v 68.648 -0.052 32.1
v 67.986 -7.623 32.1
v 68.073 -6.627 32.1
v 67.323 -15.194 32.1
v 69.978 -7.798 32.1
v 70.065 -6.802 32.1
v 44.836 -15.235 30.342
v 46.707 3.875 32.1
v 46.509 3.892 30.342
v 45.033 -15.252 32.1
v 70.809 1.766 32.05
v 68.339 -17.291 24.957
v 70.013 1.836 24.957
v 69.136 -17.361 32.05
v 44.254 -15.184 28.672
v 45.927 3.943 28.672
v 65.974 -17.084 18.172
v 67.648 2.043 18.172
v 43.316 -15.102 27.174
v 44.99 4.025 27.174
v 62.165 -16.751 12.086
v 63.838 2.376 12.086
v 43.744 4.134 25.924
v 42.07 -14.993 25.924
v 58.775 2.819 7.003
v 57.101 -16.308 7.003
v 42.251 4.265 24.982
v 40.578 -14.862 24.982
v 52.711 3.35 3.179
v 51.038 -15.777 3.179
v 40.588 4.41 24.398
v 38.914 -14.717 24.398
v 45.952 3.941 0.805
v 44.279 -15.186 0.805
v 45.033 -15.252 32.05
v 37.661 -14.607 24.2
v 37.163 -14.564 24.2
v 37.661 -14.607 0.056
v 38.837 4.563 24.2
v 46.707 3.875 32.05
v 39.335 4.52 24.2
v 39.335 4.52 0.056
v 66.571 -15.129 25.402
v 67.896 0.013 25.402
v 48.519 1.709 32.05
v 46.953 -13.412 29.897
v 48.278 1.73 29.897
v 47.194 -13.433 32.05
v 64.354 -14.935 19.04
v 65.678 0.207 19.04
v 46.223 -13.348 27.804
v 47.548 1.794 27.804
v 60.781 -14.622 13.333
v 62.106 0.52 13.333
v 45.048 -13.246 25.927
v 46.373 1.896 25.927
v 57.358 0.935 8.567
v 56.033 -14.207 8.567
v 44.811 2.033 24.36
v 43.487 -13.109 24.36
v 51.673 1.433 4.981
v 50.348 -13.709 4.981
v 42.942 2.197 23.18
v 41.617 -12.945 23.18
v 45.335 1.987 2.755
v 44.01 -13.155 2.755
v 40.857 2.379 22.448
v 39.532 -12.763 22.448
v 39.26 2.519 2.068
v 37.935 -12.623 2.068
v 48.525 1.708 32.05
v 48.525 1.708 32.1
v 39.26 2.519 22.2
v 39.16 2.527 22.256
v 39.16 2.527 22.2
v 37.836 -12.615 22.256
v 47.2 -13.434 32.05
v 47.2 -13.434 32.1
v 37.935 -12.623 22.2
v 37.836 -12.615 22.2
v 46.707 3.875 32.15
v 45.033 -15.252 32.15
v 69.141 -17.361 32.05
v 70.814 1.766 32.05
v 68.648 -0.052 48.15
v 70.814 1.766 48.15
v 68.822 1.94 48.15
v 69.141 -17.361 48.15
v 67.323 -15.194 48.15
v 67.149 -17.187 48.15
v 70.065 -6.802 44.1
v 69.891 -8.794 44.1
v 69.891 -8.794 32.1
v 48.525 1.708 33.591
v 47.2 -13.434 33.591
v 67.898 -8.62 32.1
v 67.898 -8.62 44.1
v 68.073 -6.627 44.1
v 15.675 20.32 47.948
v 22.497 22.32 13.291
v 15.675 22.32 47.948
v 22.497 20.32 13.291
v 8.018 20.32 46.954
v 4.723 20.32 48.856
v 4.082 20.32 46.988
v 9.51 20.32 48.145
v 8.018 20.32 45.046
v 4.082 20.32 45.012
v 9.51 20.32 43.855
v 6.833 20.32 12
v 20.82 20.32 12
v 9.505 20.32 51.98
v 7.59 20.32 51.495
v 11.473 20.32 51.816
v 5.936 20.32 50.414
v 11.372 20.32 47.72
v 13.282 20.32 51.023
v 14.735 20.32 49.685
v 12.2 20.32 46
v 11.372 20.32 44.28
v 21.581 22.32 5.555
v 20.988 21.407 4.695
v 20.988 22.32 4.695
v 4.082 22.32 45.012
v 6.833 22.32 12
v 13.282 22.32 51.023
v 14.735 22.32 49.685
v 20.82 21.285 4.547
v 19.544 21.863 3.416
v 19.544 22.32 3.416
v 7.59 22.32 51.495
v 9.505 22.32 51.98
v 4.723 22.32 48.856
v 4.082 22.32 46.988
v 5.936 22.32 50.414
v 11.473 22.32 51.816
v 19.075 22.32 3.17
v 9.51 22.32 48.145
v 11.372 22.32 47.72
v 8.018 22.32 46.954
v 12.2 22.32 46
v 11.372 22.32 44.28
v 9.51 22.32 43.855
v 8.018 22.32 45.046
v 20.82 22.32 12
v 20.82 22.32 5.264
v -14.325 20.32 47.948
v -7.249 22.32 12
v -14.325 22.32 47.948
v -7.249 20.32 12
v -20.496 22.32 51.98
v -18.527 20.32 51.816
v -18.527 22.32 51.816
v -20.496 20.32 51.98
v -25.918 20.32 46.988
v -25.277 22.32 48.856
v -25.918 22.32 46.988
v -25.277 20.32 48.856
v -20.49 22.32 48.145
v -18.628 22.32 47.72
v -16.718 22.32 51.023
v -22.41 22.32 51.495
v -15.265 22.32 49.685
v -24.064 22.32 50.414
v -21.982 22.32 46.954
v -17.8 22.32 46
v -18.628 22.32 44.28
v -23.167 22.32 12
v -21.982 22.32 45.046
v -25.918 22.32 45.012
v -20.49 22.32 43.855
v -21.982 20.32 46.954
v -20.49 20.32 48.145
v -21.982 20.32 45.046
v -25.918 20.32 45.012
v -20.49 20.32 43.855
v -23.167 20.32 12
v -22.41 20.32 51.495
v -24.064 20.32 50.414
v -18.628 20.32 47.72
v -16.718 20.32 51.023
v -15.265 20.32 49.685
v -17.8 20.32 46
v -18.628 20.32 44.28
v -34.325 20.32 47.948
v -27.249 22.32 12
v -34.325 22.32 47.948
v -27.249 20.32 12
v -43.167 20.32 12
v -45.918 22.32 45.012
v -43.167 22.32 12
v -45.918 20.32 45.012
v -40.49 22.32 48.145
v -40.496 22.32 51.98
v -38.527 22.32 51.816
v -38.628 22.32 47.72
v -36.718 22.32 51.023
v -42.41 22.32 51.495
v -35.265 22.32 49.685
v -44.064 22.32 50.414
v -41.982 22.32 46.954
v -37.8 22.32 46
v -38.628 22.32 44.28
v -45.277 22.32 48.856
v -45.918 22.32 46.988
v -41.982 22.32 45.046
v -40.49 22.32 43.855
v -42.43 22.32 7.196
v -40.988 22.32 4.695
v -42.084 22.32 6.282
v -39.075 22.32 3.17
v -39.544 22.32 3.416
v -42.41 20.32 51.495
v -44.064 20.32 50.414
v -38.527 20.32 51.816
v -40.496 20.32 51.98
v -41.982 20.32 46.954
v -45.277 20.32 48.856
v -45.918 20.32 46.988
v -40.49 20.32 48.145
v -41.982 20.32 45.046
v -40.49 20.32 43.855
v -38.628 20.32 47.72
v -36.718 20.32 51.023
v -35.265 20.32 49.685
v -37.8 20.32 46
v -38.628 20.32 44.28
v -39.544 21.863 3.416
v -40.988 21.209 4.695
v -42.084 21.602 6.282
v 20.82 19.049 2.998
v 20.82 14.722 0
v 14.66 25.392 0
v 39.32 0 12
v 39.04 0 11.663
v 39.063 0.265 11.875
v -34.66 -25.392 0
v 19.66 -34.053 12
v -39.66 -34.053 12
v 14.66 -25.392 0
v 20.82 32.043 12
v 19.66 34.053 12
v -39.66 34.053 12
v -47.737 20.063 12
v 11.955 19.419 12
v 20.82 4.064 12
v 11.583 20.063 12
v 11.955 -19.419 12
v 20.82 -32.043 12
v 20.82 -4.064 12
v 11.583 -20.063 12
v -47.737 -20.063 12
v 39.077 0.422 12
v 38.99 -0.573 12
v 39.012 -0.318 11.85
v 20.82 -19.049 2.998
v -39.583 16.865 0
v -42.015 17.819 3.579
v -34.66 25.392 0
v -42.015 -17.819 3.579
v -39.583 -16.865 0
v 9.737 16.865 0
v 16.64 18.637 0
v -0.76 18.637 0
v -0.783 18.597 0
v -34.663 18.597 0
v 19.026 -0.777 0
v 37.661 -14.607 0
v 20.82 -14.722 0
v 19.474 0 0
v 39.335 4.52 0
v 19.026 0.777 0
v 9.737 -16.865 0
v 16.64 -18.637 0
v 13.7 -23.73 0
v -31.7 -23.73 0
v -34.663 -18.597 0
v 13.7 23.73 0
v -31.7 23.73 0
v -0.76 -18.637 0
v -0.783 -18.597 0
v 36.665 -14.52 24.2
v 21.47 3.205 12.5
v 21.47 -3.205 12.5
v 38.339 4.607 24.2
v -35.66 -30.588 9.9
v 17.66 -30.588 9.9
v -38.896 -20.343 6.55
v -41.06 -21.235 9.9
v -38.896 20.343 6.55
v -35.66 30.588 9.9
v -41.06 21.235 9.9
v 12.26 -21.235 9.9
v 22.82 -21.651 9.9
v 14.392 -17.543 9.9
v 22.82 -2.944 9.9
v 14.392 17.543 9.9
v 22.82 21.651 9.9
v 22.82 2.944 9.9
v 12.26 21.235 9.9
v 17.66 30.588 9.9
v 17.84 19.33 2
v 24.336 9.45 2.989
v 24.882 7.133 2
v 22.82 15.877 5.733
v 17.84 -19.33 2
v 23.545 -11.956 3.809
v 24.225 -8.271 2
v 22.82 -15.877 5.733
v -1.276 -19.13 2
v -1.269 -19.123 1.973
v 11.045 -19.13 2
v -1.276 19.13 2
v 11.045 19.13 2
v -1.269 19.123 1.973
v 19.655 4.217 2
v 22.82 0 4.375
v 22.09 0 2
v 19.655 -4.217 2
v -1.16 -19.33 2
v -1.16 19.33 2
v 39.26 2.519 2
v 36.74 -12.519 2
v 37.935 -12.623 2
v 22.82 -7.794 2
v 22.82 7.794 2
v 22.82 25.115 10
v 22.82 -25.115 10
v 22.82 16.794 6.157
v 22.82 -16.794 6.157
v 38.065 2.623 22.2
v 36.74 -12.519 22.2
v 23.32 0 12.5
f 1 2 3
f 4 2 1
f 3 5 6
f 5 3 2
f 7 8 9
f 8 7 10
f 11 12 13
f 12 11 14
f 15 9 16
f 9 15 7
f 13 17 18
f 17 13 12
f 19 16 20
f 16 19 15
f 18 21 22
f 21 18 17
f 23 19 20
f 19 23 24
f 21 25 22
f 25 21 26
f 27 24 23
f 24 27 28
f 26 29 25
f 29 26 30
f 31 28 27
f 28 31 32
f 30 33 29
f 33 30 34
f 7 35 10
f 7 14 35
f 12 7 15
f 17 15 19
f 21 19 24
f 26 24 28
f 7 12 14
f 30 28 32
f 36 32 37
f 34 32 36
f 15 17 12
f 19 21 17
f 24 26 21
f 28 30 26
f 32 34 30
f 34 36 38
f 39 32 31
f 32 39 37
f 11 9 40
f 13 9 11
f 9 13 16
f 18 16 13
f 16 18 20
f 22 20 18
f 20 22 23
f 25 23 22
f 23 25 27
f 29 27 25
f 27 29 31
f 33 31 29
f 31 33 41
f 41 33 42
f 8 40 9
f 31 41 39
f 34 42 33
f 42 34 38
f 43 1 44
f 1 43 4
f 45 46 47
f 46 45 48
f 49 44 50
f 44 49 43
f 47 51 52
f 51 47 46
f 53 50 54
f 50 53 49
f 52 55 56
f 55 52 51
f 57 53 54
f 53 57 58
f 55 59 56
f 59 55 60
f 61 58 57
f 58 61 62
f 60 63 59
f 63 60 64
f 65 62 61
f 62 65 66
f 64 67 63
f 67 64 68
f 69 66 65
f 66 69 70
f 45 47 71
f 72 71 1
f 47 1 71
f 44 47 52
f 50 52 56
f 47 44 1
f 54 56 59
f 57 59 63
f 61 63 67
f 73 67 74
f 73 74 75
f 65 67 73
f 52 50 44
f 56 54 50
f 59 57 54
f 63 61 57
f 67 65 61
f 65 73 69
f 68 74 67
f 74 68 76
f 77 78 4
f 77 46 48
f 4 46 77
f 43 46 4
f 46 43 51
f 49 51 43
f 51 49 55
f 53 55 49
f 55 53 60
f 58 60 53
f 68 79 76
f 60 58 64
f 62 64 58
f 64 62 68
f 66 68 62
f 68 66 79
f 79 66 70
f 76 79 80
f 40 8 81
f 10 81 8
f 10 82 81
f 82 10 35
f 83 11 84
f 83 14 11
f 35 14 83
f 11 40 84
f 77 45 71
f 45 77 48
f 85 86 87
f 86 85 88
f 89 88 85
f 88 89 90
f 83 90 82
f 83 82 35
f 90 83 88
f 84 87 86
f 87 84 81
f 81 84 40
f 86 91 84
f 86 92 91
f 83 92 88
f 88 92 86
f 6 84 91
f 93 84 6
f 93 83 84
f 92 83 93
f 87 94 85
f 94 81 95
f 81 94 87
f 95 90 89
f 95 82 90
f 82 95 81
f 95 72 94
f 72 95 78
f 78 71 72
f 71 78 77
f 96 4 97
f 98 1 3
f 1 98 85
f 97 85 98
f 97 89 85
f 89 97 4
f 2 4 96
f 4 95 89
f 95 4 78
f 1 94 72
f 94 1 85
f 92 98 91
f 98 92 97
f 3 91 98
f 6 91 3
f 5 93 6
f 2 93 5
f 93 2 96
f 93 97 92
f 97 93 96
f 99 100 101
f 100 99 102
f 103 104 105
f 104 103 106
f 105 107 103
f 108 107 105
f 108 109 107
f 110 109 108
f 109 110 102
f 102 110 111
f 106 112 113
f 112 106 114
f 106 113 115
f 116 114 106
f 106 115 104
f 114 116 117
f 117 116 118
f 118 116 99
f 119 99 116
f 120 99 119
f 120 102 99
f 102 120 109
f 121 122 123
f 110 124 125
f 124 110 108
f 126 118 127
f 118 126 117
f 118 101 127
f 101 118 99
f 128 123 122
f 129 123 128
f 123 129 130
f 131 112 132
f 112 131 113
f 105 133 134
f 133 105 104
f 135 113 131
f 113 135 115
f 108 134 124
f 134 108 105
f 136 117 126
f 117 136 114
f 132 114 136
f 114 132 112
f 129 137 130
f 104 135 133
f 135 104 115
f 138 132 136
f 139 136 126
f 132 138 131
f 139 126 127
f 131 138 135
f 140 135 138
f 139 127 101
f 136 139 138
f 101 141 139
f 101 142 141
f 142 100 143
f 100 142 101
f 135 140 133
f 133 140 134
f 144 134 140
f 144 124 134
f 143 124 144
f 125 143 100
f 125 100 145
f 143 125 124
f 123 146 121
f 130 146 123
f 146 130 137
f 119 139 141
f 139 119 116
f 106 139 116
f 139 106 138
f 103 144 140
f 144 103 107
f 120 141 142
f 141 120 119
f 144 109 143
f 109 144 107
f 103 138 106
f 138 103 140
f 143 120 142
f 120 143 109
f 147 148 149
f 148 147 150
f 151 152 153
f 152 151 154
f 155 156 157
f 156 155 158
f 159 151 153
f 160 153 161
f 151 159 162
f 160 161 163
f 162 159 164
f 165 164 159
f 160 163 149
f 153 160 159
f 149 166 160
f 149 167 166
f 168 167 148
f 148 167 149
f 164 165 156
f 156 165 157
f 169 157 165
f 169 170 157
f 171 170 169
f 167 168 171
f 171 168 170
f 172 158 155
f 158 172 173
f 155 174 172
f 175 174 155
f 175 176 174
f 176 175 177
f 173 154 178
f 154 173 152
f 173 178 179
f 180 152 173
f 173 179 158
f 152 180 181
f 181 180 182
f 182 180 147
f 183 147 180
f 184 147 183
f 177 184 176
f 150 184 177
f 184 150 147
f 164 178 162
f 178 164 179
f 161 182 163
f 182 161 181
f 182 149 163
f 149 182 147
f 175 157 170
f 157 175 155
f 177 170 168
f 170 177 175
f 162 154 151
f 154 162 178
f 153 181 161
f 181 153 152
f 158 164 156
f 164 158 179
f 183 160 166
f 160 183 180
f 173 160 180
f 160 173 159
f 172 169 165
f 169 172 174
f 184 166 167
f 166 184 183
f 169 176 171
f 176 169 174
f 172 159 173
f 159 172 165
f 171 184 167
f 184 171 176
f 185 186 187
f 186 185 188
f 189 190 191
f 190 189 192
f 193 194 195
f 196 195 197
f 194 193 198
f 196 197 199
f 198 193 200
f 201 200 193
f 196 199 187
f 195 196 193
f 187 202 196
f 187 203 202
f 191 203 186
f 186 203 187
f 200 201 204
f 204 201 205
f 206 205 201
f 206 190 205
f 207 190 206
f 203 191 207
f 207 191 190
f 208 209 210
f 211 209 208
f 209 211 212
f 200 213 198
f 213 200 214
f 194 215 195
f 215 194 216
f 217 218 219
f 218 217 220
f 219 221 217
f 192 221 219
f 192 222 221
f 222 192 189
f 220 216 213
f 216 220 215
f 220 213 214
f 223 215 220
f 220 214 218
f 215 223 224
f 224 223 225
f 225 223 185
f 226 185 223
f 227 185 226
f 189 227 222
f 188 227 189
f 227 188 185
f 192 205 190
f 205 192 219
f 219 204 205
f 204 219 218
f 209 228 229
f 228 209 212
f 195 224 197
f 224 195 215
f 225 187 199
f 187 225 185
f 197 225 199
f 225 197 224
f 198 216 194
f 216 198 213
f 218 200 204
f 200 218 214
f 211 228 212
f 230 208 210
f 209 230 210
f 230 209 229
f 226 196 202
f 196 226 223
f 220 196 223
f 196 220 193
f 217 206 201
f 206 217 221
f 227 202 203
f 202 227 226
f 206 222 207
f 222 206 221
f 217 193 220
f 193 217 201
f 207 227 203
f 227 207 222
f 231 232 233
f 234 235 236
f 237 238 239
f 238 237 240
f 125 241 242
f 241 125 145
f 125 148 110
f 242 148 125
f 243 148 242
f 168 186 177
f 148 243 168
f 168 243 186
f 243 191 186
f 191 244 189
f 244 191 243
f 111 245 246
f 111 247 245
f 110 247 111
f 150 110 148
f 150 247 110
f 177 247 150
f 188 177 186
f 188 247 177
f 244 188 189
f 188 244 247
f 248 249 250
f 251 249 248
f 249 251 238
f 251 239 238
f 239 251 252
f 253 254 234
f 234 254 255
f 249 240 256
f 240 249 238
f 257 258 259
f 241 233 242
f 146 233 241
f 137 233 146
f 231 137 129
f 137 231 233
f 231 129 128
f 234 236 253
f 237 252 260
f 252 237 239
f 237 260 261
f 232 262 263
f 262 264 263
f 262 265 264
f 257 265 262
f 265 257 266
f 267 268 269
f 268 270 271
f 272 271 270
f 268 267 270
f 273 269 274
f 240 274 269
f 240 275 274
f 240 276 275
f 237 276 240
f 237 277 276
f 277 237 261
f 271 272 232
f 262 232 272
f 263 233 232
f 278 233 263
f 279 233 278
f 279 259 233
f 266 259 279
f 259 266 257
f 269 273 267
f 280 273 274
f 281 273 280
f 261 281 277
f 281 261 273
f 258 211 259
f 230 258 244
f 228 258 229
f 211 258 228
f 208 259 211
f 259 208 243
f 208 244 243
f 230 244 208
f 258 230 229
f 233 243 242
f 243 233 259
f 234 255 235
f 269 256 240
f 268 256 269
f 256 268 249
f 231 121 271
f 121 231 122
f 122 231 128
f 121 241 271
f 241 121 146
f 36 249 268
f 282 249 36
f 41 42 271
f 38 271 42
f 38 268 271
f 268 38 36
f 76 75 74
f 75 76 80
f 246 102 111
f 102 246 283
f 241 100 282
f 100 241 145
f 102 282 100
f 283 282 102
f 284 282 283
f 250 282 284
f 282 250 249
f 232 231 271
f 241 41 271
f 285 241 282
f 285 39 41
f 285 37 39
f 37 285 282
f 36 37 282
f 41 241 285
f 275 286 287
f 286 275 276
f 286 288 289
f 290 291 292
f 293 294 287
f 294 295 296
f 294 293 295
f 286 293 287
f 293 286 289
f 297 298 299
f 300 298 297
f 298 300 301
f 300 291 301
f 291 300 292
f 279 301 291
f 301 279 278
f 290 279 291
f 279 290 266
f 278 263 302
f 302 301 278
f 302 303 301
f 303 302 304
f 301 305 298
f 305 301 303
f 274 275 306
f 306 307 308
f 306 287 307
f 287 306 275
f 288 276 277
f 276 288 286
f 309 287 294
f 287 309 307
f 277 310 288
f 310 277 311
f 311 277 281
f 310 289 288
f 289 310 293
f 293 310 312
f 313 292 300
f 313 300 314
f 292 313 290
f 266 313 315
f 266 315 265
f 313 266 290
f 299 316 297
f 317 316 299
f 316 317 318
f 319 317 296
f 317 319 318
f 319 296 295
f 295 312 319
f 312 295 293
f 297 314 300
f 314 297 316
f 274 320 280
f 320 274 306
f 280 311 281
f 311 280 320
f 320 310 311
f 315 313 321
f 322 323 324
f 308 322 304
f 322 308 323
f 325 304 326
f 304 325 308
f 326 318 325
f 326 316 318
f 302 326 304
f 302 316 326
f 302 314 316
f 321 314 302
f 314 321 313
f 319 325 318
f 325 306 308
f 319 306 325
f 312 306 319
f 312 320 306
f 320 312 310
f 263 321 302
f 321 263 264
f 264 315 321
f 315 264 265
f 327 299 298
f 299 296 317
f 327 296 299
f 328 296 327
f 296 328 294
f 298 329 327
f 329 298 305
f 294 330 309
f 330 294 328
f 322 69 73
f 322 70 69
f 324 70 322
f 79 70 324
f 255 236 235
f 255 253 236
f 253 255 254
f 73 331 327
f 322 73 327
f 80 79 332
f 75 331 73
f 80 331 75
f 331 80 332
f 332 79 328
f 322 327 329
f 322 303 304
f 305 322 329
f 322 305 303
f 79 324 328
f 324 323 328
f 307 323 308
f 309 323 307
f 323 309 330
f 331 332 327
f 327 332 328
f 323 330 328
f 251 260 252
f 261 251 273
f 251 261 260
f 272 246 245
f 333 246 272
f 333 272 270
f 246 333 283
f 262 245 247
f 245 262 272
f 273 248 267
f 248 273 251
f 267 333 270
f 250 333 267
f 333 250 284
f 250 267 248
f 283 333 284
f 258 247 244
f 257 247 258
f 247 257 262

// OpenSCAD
hot_rad = 30/2/cos(30);
hotend_x=25;
fan_x = 15+5;

hotend_y=-5;

thickness = 10;
wall=2;
slop=.2;

fan_hole = (40-wall-wall)/2;
mount_drop = 10;
fan_z = fan_hole+wall;

//fan_mount();
bowden_fan();

%cylinder(r=hot_rad, h=20, center=true);
%translate([-23,0,0]) cylinder(r=hot_rad, h=20, center=true);

m3_cap_rad = 4;
m3_rad = 2;
m3_nut_rad = 6.01/2+.1;

facets = 6;

module fan_mount(){
    difference(){
        union(){
            //core
            cylinder(r1=hot_rad+thickness+wall, r2=hot_rad+thickness*2+wall, h=thickness+wall, $fn=facets);
            
            hull(){
                intersection(){
                    difference(){
                        cylinder(r1=hot_rad+thickness+wall, r2=hot_rad+thickness*2+wall, h=thickness+wall, $fn=facets);
                        translate([0,0,-.5]) cylinder(r1=hot_rad+wall, r2=hot_rad+wall+wall, h=thickness+wall+1, $fn=facets);
                    }
                    translate([50+hot_rad-6.7,50,50]) cube([100,100,100], center=true);
                }
                translate([hotend_x+fan_x-5,hotend_y,fan_z]) rotate([0,90,0]) cylinder(r=fan_hole+wall, h=5);
            }
            
            hull(){
                intersection(){
                    difference(){
                        cylinder(r1=hot_rad+thickness+wall, r2=hot_rad+thickness*2+wall, h=thickness+wall, $fn=facets);
                        translate([0,0,-.5]) cylinder(r1=hot_rad+wall, r2=hot_rad+wall+wall, h=thickness+wall+1, $fn=facets);
                    }
                    translate([50+hot_rad-6.7,-50,50]) cube([100,100,100], center=true);
                }
                translate([hotend_x+fan_x-5,hotend_y,fan_z]) rotate([0,90,0]) cylinder(r=fan_hole+wall, h=5);
            }
            
            //fan mount
            translate([hotend_x+fan_x,hotend_y,fan_z]) rotate([0,90,0]){
                hull() for(i=[0:90:359]) rotate([0,0,i]) {
                    #translate([20-wall,20-wall,-wall]) cylinder(r=wall,h=wall*2, $fn=16);
                }    
            }
            
            //mounting lugs above fan
            translate([hotend_x+fan_x,hotend_y,fan_z]) rotate([0,90,0]){
                for(i=[-16, 16]) difference(){
                    hull(){
                        translate([-16-mount_drop,i,-fan_x+3]) cylinder(r=m3_rad+wall, h=wall*2, $fn=16);
                        translate([0,i,-fan_x+3]) cylinder(r=m3_cap_rad*2, h=wall);
                    }
                    translate([-16-mount_drop,i,-fan_x+3-.1]) cylinder(r=m3_rad, h=wall*2+1, $fn=16);
                }
            }
        }
        
        //center cutout
        translate([0,0,-.5]) cylinder(r1=hot_rad+wall, r2=hot_rad+wall+wall, h=thickness+wall+1, $fn=facets);
                
        //front cutout
        translate([-(hot_rad+thickness*2+wall),0,0]) cylinder(r=hot_rad+thickness*2+wall, h=thickness+wall*10, center=true, $fn=facets);
        
        //fan holes
        translate([hotend_x+fan_x,hotend_y,fan_z]) rotate([0,90,0]){
            for(i=[-16, 16]) for(j=[-16, 16]) {
                #translate([j,i,-.1]) cylinder(r=m3_rad, h=wall+.2, $fn=16);
                translate([j,i,-wall*2-.1]) cylinder(r2=m3_nut_rad, r1=m3_nut_rad+.25, h=wall*2+.2, $fn=6);
            }
        }
        
        //air path
        translate([0,0,-.1]) difference(){
            union(){
                translate([-wall,0,0]) cylinder(r1=hot_rad+thickness, r2=hot_rad+thickness*2-wall, h=thickness, $fn=facets);
                
                hull(){
                    intersection(){
                        difference(){
                            translate([-wall,0,0]) cylinder(r1=hot_rad+thickness, r2=hot_rad+thickness*2-wall, h=thickness, $fn=facets);
                            translate([0,0,-.5]) cylinder(r1=hot_rad+wall*2, r2=hot_rad+wall*3, h=thickness+wall+1, $fn=facets);
                        }
                        translate([50+hot_rad-6.7,50,50]) cube([100,100,100], center=true);
                    }
                    translate([hotend_x+fan_x-5,hotend_y,fan_z]) rotate([0,90,0]) cylinder(r=fan_hole, h=.3);
                }
                
                hull(){
                    intersection(){
                        difference(){
                            translate([-wall,0,0]) cylinder(r1=hot_rad+thickness, r2=hot_rad+thickness*2-wall, h=thickness, $fn=facets);
                            translate([0,0,-.5]) cylinder(r1=hot_rad+wall+wall, r2=hot_rad+wall+wall+wall, h=thickness+wall+1, $fn=facets);
                        }
                        translate([50+hot_rad-6.7,-50,50]) cube([100,100,100], center=true);
                    }
                    translate([hotend_x+fan_x-5,hotend_y,fan_z]) rotate([0,90,0]) cylinder(r=fan_hole, h=.3);
                }
                
                translate([hotend_x+fan_x-5,hotend_y,fan_z]) rotate([0,90,0]) cylinder(r=fan_hole, h=wall+1+5);
            }
            cylinder(r1=hot_rad+wall+wall, r2=hot_rad+wall+wall+wall, h=thickness+wall, $fn=facets);
            translate([-(hot_rad+thickness*2),0,0]) cylinder(r=hot_rad+thickness*2+wall, h=thickness+wall*10, center=true, $fn=facets);
            translate([0,-5+hotend_y/2,0])cube([100,10,wall]);
        }
    }
}

duct_angle=-5;
duct_jut = -5;

module bowden_fan(){
    duct_w = 15+slop;
    duct_h = 20+slop;
    duct_offset=38;
    
    mount_height = 46;
    
    offset = -20;
    difference(){
        union(){
            //core
            hull(){
                cylinder(r1=hot_rad+thickness+wall, r2=hot_rad+thickness*2+wall, h=thickness+wall, $fn=facets);
                translate([offset,0,0]) cylinder(r1=hot_rad+thickness+wall, r2=hot_rad+thickness*2+wall, h=thickness+wall, $fn=facets);
            }
            
            //connection to duct
            hull(){
                intersection(){
                    cylinder(r1=hot_rad+thickness+wall, r2=hot_rad+thickness*2+wall, h=thickness+wall, $fn=facets);
                    translate([hot_rad+wall*2,0,0]) cube([1,200,200], center=true);
                }
                translate([duct_offset,duct_jut,duct_h/2+wall]) rotate([0,0,duct_angle]) cube([1,duct_w+wall*2, duct_h+wall*2], center=true);
            }
            
            //the duct connector
            translate([duct_offset,duct_jut,0]) rotate([0,0,duct_angle]) duct();
            
            //mounting lugs
           for(i=[10,-20,-40]) difference(){
                translate([i,hot_rad+wall*2,0]) hull(){
                    translate([5,0,thickness]) rotate([90,0,0]) cylinder(r=m3_cap_rad+wall*2, h=wall, center=true);
                    translate([0,0,mount_height]) rotate([90,0,0]) cylinder(r=m3_cap_rad+wall, h=wall, center=true);
                }
                
                //mounting holes up top
                translate([i,hot_rad+wall*2,mount_height]) rotate([90,0,0]) cylinder(r=m3_rad+slop, h=20, center=true);
            }
        }
        
        //connection to duct airflow
        hull(){
            intersection(){
                translate([0,0,wall]) cylinder(r1=hot_rad+thickness, r2=hot_rad+thickness*2, h=thickness-wall, $fn=facets);
                translate([hot_rad+wall*3,0,0]) cube([1,200,200], center=true);
            }
            translate([duct_offset,duct_jut,duct_h/2+wall]) rotate([0,0,duct_angle]) cube([1.2,duct_w, duct_h], center=true);
        }
        
        //center cutout
        translate([0,0,-.5]) hull(){
            cylinder(r1=hot_rad+wall, r2=hot_rad+wall*3, h=thickness+wall+1, $fn=facets);
            translate([2*offset,0,0]) cylinder(r1=hot_rad+wall, r2=hot_rad+wall*3, h=thickness+wall+1, $fn=facets);
        }
        
        //air path
        difference(){
            //core
            translate([0,0,-.1]) hull(){
                cylinder(r1=hot_rad+thickness, r2=hot_rad+thickness*2-wall, h=thickness, $fn=facets);
                translate([offset+wall,0,0]) cylinder(r1=hot_rad+thickness, r2=hot_rad+thickness*2-wall, h=thickness, $fn=facets);
            }
            
            //keep the center walls in place
            translate([0,0,-.5]) hull(){
                cylinder(r1=hot_rad+wall*2, r2=hot_rad+wall*4, h=thickness+wall+1, $fn=facets);
                translate([2*offset,0,0]) cylinder(r1=hot_rad+wall*2, r2=hot_rad+wall*4, h=thickness+wall+1, $fn=facets);
            }
            
            //bottom on the near side
            translate([10,0,-.5]) cylinder(r1=hot_rad+wall*2, r2=hot_rad+wall*2.5, h=wall+.5, $fn=facets);
        }
    }
}

module duct(){
    duct_w = 15+slop;
    duct_h = 20+slop;
    rad = 20;
    
    translate([0,0,rad+wall+duct_h/2]) rotate([-90,0,0]) union(){
        intersection(){
            rotate_extrude(angle = 90, convexity = 2){
                translate([rad,0,0])
                difference(){
                    square([duct_h+wall*2, duct_w+wall*2], center=true);
                    square([duct_h, duct_w], center=true);
                }
            }
            translate([0,0,-100]) cube([200,200,200]);
        }
        
        translate([rad,0,0]) rotate([90,0,0]) translate([0,0,8]) difference(){
            hull(){
                translate([0,0,-8]) cube([duct_h+wall*2,duct_w+wall*2,.1], center=true);
                #translate([duct_h/2+wall/2,0,8]) cube([wall,duct_w+wall*2,.1], center=true);
            }
            
            //hollow center
            cube([duct_h,duct_w,16.3], center=true);
            
            //slot for the clip
            translate([wall+1,0,(12-16)/2]) cube([duct_h+wall*2,2,12], center=true);
        }
        
    }
    
}
